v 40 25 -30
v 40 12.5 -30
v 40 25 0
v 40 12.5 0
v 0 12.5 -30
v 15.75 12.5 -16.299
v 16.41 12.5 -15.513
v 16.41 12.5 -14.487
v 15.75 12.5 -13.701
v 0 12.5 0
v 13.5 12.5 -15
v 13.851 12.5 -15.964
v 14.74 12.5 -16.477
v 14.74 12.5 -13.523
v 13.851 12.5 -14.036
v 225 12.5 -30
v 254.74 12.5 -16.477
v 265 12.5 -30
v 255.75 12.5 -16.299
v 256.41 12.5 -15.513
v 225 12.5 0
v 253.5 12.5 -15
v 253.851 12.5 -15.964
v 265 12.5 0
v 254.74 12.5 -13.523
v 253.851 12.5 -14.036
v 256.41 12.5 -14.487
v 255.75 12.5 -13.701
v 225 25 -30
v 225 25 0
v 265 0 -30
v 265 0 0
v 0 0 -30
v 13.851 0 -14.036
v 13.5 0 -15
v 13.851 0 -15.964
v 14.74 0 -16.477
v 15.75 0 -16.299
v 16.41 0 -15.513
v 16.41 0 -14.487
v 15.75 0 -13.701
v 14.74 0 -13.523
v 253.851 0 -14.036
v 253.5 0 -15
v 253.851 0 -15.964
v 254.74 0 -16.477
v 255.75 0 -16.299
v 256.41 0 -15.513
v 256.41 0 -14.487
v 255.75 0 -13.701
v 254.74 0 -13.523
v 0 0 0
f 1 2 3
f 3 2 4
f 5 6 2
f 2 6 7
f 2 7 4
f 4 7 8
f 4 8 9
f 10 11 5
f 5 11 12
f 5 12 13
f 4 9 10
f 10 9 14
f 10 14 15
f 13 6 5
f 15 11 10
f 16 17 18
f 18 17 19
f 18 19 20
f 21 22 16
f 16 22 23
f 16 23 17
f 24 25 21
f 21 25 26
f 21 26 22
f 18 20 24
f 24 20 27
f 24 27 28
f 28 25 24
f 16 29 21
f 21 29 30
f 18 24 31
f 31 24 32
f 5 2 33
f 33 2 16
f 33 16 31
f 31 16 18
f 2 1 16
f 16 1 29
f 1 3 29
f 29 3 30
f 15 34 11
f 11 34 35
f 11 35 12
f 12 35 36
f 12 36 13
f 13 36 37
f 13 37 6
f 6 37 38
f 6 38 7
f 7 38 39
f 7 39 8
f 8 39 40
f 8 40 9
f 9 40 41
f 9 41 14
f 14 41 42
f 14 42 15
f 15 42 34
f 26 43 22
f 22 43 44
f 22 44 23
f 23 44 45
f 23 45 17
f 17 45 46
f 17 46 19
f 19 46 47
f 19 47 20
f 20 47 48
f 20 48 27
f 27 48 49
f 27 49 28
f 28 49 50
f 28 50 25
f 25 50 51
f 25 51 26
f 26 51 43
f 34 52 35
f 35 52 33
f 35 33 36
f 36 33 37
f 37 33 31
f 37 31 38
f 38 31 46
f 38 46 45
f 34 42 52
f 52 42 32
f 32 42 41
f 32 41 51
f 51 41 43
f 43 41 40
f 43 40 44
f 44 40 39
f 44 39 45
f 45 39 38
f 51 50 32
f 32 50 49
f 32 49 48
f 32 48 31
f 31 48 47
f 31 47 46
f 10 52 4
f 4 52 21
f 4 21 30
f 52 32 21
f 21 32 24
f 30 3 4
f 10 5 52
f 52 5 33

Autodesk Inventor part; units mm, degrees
ref_plane "YZ Plane" through (0, 0, 0) normal (1, 0, 0) x (0, 1, 0)
ref_plane "XZ Plane" through (0, 0, 0) normal (0, 1, 0) x (-1, 0, 0)
ref_plane "XY Plane" through (0, 0, 0) normal (0, 0, 1) x (1, 0, 0)
sketch "Esquisse1" plane through (0, 0, 0) normal (1, 0, 0) x (0, 1, 0)
  line L0 (0, 0) -> (25, 0)
  line L1 (25, 0) -> (25, -30)
  line L2 (25, -30) -> (0, -30)
  line L3 (0, -30) -> (0, 0)
  dimension "d0" = 25
  dimension "d1" = 30
extrude "Extrusion1" add sketch "Esquisse1" along normal blind 265
sketch "Esquisse2" plane through (0, 25, 0) normal (0, 1, 0) x (1, 0, 0)
  circle A0 centre (15, 15) radius 1.5
  line L0 (0, 30) -> (0, 0) projected
  circle A1 centre (255, 15) radius 1.5
  dimension "d4" = 3
  dimension "d5" = 15
  dimension "d6" = 240
  dimension "d9" = 3
extrude "Extrusion2" cut sketch "Esquisse2" against normal through all
sketch "Esquisse3" plane through (0, 0, 0) normal (0, 0, 1) x (1, 0, 0)
  line L0 (0, 25) -> (265, 25) projected
  line L1 (0, 25) -> (40, 25)
  line L2 (40, 25) -> (40, 12.5)
  line L3 (40, 12.5) -> (0, 12.5)
  line L4 (0, 12.5) -> (0, 25)
  line L5 (265, 25) -> (225, 25)
  line L6 (225, 25) -> (225, 12.5)
  line L7 (225, 12.5) -> (265, 12.5)
  line L8 (265, 12.5) -> (265, 25)
  point P0 (0, 0)
  dimension "d10" = 12.5
  dimension "d11" = 40
  dimension "d12" = 40
extrude "Extrusion3" cut sketch "Esquisse3" against normal through all
properties part number "Bras_arrierre"
